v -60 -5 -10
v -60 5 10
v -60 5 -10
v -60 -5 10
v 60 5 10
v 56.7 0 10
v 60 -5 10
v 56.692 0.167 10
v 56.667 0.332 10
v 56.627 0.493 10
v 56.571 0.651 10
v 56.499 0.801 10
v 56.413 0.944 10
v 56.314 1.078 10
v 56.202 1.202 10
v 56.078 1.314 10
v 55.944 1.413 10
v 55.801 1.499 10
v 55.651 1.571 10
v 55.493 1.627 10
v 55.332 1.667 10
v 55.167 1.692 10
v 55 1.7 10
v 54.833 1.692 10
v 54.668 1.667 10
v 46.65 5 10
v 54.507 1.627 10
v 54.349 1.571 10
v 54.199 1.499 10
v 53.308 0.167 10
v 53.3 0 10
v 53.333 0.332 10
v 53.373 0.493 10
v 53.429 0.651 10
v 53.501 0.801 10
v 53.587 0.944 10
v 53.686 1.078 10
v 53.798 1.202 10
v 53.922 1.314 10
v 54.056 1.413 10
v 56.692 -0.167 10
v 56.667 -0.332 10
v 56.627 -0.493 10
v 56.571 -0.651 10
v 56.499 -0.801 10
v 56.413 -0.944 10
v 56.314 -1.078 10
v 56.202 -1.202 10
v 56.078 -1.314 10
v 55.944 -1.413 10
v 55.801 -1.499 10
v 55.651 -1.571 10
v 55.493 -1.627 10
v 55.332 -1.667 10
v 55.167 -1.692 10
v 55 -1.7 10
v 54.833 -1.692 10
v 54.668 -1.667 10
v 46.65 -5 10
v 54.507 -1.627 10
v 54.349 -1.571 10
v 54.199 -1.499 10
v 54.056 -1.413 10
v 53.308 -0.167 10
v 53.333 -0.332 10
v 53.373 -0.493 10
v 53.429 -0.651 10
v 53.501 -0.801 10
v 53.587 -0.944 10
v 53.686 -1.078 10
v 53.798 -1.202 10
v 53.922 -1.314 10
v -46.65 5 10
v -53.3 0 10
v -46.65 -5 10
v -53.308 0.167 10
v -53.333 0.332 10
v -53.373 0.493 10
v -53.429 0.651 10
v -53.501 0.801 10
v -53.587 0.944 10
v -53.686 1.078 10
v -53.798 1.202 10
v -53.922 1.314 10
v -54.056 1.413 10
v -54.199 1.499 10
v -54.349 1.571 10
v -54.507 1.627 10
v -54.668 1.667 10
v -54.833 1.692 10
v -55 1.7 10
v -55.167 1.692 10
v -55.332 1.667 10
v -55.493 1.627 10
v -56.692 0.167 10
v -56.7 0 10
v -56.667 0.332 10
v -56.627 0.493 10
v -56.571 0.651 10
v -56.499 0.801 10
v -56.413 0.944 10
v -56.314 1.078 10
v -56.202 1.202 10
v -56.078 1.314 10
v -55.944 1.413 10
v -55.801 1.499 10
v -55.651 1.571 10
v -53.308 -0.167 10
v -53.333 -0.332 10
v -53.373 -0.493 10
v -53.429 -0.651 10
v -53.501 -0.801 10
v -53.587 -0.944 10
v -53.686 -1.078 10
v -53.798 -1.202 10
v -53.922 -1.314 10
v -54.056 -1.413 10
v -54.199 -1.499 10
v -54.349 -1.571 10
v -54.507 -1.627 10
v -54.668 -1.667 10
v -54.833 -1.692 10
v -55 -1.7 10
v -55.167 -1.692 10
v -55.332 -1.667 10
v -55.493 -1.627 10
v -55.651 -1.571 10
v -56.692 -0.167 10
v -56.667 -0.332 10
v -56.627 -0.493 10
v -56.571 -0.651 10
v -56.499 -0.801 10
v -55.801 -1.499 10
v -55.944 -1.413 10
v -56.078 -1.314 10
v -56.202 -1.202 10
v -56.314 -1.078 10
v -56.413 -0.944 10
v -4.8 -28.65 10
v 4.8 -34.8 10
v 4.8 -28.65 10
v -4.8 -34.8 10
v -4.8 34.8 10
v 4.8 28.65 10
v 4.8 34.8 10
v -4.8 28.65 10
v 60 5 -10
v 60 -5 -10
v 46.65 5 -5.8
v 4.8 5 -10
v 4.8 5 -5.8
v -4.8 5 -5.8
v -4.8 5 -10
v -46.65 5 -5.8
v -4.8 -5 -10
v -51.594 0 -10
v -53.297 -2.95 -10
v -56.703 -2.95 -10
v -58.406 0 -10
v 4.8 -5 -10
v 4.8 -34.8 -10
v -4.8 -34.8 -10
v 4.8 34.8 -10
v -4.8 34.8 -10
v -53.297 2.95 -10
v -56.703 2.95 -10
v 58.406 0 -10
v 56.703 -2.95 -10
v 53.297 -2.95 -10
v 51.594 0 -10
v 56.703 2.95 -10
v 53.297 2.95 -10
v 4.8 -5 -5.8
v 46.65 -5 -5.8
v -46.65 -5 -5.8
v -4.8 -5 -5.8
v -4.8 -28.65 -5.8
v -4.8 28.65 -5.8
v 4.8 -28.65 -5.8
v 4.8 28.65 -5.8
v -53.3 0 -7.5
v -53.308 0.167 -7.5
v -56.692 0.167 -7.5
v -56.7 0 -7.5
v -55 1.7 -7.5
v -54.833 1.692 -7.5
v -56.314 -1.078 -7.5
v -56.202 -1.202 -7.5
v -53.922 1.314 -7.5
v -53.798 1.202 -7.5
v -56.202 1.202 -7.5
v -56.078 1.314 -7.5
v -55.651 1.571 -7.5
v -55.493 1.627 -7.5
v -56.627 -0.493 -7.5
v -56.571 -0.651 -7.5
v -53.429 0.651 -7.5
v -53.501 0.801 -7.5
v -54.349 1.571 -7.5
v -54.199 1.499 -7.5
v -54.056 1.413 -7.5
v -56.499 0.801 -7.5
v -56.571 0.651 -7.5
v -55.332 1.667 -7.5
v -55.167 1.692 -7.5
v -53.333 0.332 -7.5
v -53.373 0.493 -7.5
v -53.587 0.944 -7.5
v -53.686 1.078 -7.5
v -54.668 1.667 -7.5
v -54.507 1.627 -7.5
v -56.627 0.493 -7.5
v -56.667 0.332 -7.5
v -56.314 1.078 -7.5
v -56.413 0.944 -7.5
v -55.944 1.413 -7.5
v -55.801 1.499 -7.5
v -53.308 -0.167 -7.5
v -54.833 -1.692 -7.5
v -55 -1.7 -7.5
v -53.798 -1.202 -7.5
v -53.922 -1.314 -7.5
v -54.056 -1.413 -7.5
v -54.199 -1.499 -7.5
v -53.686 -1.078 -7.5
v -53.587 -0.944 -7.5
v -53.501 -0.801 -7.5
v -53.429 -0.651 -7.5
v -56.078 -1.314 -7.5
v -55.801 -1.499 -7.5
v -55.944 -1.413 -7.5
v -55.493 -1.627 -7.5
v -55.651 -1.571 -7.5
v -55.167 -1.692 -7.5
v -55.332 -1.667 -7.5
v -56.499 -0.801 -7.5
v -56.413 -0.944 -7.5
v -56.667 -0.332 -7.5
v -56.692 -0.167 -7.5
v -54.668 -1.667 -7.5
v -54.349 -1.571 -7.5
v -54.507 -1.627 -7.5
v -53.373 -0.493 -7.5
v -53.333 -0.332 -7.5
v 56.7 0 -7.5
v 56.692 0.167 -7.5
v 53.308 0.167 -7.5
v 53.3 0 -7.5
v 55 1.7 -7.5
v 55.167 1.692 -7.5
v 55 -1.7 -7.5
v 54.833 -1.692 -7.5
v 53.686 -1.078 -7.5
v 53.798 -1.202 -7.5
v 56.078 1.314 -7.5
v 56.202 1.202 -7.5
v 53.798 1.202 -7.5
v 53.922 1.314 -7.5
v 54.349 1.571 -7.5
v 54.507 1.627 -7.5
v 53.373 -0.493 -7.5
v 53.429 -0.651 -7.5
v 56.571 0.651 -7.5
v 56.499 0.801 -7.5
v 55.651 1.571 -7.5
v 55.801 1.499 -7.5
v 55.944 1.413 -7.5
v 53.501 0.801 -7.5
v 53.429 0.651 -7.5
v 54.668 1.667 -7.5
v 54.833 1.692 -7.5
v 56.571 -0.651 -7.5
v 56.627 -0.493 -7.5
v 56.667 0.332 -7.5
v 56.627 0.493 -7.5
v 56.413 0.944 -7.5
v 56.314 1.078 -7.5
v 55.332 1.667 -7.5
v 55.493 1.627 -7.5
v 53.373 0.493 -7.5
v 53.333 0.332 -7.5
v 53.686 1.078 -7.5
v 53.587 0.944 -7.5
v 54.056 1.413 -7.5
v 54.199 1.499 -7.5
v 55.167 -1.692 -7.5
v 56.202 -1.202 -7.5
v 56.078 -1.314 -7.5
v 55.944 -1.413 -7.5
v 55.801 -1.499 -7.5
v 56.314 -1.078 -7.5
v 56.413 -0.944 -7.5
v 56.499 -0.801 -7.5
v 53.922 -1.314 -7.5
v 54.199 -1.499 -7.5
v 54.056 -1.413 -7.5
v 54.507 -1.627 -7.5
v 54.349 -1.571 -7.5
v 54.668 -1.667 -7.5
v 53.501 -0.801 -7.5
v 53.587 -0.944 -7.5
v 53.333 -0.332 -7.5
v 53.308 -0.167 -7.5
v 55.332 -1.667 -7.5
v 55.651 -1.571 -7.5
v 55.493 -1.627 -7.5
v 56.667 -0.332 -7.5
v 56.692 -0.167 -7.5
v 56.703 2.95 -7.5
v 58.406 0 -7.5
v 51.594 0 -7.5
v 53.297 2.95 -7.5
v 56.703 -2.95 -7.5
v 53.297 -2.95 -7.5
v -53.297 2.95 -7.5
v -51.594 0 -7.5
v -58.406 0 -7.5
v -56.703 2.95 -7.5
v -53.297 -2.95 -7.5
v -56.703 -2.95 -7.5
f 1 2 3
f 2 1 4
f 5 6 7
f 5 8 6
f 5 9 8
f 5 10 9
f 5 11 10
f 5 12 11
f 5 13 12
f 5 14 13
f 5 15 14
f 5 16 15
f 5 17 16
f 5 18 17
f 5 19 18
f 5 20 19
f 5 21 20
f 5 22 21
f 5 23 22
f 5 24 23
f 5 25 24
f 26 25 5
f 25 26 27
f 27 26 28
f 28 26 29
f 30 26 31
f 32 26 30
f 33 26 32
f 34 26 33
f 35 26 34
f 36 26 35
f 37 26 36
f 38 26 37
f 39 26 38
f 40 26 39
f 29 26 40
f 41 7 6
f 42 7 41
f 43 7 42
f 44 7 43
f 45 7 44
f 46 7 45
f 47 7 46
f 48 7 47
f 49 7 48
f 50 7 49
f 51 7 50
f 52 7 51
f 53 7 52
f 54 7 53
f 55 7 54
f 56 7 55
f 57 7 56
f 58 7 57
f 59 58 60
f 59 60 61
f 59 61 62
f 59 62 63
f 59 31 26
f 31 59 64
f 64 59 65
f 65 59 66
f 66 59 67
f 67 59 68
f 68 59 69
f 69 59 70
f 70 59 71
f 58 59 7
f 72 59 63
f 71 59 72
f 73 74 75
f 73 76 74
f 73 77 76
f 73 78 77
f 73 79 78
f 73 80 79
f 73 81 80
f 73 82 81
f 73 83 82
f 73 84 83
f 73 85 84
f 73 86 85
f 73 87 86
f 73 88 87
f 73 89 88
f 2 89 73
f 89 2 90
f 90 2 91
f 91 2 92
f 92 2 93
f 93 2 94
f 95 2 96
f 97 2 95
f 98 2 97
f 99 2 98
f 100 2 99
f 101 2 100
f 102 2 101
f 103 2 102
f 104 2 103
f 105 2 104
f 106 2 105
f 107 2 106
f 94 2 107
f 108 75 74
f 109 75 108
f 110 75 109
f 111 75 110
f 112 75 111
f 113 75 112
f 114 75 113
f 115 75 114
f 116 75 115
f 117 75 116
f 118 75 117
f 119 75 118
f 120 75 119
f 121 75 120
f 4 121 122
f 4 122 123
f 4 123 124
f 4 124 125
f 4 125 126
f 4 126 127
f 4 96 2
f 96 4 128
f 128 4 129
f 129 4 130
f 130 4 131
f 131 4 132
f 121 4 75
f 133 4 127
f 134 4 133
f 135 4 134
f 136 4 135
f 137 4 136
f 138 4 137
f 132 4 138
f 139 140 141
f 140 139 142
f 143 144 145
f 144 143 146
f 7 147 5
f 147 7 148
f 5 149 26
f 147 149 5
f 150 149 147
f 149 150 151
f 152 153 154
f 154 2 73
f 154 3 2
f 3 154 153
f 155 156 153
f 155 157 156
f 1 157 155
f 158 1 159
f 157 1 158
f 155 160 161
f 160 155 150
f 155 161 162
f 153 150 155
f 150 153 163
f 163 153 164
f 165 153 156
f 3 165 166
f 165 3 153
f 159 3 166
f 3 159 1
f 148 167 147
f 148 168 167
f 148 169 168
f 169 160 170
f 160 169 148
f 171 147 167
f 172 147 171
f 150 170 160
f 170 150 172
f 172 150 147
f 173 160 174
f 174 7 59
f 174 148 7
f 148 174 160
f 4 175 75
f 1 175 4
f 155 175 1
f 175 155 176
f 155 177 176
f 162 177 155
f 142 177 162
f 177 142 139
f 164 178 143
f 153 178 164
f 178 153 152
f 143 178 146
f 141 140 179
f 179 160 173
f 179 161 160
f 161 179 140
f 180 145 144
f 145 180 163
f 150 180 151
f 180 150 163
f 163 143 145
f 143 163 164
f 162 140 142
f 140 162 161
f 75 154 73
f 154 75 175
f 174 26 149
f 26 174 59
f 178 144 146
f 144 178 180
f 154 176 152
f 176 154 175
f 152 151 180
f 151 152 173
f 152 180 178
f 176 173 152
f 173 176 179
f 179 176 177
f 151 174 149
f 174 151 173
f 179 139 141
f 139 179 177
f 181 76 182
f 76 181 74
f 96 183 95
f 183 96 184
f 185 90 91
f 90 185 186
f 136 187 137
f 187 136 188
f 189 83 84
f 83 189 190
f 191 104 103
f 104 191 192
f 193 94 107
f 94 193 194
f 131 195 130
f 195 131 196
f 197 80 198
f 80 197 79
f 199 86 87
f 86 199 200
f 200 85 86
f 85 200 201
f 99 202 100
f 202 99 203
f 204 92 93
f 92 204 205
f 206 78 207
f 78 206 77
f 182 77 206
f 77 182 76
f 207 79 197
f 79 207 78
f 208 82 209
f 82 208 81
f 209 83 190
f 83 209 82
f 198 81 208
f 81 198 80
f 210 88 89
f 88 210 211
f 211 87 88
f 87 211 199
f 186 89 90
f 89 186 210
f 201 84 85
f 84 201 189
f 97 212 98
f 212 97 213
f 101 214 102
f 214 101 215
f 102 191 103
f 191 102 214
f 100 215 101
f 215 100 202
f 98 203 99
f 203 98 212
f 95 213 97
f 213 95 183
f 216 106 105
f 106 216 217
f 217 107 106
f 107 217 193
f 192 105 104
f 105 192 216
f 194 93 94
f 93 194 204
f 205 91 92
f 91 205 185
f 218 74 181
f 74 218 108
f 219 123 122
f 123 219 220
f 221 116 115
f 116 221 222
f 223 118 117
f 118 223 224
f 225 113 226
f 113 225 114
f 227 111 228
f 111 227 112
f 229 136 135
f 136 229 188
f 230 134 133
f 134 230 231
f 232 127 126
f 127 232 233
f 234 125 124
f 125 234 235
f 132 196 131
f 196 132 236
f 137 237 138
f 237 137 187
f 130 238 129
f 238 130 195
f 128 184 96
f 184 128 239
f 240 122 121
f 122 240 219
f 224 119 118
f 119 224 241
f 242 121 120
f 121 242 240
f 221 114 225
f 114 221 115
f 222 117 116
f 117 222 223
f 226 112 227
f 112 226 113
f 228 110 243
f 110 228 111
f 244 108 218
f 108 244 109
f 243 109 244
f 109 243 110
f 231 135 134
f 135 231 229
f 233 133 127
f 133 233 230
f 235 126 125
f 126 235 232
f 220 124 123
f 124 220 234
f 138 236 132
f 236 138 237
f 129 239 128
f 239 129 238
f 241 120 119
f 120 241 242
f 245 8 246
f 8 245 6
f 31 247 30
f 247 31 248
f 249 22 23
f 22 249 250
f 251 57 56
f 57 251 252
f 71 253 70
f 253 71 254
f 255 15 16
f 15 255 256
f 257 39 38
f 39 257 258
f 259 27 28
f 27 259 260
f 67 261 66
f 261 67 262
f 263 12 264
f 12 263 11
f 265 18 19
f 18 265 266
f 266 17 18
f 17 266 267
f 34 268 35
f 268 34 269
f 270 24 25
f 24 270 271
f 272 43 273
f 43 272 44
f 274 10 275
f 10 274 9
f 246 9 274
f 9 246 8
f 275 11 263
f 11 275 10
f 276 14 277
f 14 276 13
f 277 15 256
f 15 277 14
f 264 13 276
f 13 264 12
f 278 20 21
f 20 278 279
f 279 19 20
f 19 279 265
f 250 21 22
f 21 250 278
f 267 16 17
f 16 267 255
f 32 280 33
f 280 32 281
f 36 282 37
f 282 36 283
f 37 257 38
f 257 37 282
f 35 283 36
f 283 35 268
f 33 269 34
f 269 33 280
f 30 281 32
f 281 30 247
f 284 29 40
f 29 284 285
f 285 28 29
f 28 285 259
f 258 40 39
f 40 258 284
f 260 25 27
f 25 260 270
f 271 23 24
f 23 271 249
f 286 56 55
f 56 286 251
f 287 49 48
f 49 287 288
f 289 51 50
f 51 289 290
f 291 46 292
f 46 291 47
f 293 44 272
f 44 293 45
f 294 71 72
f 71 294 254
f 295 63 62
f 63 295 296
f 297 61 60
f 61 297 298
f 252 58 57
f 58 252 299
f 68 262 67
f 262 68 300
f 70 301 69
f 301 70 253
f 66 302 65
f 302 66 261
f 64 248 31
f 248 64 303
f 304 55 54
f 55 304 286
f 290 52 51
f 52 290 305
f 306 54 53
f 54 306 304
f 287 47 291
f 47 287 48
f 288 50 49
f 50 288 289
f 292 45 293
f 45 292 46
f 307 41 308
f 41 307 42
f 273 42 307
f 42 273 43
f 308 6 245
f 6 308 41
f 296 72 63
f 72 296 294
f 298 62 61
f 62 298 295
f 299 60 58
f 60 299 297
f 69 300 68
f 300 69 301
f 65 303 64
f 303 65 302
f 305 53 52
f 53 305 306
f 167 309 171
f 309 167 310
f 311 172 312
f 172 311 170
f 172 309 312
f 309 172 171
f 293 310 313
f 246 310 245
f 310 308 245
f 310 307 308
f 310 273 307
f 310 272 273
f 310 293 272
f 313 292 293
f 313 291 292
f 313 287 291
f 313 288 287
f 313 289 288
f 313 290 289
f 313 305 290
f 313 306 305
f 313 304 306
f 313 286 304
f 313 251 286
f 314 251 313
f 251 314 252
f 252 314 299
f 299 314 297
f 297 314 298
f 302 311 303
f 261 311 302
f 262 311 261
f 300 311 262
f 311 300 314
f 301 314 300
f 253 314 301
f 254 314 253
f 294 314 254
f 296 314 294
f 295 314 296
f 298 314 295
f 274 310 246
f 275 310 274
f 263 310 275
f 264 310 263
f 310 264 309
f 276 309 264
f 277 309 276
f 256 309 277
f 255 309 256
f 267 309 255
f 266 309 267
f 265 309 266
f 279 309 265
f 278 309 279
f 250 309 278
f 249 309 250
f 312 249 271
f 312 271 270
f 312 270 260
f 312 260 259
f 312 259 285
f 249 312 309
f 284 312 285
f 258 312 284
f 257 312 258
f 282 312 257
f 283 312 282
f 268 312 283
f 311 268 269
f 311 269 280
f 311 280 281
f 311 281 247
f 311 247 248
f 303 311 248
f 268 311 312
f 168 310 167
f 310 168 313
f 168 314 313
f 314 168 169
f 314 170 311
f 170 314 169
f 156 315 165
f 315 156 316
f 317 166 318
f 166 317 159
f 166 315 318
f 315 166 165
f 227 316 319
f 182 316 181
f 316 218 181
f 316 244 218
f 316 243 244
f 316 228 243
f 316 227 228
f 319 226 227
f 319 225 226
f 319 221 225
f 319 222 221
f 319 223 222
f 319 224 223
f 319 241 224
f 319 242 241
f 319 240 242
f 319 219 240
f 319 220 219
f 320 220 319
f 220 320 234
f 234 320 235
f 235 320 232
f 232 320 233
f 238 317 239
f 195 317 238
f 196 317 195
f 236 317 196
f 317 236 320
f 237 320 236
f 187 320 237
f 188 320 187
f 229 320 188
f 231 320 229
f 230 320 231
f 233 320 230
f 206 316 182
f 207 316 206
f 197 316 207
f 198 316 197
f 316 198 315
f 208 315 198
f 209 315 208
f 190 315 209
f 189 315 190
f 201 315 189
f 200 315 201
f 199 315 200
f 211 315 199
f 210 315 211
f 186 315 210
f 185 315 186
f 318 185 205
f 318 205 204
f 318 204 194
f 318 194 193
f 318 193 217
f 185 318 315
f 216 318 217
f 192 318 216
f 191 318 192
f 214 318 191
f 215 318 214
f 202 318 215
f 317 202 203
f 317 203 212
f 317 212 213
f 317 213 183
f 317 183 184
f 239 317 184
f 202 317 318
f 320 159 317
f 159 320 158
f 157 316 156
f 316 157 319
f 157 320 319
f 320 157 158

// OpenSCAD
sidex=120;
sidey=10;
height=20;

difference() {
// Long side
union() {

cube([sidex,sidey,height], center=true);    
// Short side
cube([9.6, 69.6, 20], center=true);   
    }
    
translate([0, 0, 4.2])
    cube([93.3, 57.3, 20], center=true);  
translate([-55, 0, 0])
    cylinder(d=3.4, h=70,$fn=64,center=true); 

translate([55, 0, 0])
    cylinder(d=3.4, h=70,$fn=64,center=true); 
translate([55, 0, -10])
    cylinder(d=2*(5.5+0.4) / sqrt(3), h=5,$fn=6, center=true);
 
translate([-55, 0, -10])
    cylinder(d=2*(5.5+0.4) / sqrt(3), h=5,$fn=6, center=true);

}
